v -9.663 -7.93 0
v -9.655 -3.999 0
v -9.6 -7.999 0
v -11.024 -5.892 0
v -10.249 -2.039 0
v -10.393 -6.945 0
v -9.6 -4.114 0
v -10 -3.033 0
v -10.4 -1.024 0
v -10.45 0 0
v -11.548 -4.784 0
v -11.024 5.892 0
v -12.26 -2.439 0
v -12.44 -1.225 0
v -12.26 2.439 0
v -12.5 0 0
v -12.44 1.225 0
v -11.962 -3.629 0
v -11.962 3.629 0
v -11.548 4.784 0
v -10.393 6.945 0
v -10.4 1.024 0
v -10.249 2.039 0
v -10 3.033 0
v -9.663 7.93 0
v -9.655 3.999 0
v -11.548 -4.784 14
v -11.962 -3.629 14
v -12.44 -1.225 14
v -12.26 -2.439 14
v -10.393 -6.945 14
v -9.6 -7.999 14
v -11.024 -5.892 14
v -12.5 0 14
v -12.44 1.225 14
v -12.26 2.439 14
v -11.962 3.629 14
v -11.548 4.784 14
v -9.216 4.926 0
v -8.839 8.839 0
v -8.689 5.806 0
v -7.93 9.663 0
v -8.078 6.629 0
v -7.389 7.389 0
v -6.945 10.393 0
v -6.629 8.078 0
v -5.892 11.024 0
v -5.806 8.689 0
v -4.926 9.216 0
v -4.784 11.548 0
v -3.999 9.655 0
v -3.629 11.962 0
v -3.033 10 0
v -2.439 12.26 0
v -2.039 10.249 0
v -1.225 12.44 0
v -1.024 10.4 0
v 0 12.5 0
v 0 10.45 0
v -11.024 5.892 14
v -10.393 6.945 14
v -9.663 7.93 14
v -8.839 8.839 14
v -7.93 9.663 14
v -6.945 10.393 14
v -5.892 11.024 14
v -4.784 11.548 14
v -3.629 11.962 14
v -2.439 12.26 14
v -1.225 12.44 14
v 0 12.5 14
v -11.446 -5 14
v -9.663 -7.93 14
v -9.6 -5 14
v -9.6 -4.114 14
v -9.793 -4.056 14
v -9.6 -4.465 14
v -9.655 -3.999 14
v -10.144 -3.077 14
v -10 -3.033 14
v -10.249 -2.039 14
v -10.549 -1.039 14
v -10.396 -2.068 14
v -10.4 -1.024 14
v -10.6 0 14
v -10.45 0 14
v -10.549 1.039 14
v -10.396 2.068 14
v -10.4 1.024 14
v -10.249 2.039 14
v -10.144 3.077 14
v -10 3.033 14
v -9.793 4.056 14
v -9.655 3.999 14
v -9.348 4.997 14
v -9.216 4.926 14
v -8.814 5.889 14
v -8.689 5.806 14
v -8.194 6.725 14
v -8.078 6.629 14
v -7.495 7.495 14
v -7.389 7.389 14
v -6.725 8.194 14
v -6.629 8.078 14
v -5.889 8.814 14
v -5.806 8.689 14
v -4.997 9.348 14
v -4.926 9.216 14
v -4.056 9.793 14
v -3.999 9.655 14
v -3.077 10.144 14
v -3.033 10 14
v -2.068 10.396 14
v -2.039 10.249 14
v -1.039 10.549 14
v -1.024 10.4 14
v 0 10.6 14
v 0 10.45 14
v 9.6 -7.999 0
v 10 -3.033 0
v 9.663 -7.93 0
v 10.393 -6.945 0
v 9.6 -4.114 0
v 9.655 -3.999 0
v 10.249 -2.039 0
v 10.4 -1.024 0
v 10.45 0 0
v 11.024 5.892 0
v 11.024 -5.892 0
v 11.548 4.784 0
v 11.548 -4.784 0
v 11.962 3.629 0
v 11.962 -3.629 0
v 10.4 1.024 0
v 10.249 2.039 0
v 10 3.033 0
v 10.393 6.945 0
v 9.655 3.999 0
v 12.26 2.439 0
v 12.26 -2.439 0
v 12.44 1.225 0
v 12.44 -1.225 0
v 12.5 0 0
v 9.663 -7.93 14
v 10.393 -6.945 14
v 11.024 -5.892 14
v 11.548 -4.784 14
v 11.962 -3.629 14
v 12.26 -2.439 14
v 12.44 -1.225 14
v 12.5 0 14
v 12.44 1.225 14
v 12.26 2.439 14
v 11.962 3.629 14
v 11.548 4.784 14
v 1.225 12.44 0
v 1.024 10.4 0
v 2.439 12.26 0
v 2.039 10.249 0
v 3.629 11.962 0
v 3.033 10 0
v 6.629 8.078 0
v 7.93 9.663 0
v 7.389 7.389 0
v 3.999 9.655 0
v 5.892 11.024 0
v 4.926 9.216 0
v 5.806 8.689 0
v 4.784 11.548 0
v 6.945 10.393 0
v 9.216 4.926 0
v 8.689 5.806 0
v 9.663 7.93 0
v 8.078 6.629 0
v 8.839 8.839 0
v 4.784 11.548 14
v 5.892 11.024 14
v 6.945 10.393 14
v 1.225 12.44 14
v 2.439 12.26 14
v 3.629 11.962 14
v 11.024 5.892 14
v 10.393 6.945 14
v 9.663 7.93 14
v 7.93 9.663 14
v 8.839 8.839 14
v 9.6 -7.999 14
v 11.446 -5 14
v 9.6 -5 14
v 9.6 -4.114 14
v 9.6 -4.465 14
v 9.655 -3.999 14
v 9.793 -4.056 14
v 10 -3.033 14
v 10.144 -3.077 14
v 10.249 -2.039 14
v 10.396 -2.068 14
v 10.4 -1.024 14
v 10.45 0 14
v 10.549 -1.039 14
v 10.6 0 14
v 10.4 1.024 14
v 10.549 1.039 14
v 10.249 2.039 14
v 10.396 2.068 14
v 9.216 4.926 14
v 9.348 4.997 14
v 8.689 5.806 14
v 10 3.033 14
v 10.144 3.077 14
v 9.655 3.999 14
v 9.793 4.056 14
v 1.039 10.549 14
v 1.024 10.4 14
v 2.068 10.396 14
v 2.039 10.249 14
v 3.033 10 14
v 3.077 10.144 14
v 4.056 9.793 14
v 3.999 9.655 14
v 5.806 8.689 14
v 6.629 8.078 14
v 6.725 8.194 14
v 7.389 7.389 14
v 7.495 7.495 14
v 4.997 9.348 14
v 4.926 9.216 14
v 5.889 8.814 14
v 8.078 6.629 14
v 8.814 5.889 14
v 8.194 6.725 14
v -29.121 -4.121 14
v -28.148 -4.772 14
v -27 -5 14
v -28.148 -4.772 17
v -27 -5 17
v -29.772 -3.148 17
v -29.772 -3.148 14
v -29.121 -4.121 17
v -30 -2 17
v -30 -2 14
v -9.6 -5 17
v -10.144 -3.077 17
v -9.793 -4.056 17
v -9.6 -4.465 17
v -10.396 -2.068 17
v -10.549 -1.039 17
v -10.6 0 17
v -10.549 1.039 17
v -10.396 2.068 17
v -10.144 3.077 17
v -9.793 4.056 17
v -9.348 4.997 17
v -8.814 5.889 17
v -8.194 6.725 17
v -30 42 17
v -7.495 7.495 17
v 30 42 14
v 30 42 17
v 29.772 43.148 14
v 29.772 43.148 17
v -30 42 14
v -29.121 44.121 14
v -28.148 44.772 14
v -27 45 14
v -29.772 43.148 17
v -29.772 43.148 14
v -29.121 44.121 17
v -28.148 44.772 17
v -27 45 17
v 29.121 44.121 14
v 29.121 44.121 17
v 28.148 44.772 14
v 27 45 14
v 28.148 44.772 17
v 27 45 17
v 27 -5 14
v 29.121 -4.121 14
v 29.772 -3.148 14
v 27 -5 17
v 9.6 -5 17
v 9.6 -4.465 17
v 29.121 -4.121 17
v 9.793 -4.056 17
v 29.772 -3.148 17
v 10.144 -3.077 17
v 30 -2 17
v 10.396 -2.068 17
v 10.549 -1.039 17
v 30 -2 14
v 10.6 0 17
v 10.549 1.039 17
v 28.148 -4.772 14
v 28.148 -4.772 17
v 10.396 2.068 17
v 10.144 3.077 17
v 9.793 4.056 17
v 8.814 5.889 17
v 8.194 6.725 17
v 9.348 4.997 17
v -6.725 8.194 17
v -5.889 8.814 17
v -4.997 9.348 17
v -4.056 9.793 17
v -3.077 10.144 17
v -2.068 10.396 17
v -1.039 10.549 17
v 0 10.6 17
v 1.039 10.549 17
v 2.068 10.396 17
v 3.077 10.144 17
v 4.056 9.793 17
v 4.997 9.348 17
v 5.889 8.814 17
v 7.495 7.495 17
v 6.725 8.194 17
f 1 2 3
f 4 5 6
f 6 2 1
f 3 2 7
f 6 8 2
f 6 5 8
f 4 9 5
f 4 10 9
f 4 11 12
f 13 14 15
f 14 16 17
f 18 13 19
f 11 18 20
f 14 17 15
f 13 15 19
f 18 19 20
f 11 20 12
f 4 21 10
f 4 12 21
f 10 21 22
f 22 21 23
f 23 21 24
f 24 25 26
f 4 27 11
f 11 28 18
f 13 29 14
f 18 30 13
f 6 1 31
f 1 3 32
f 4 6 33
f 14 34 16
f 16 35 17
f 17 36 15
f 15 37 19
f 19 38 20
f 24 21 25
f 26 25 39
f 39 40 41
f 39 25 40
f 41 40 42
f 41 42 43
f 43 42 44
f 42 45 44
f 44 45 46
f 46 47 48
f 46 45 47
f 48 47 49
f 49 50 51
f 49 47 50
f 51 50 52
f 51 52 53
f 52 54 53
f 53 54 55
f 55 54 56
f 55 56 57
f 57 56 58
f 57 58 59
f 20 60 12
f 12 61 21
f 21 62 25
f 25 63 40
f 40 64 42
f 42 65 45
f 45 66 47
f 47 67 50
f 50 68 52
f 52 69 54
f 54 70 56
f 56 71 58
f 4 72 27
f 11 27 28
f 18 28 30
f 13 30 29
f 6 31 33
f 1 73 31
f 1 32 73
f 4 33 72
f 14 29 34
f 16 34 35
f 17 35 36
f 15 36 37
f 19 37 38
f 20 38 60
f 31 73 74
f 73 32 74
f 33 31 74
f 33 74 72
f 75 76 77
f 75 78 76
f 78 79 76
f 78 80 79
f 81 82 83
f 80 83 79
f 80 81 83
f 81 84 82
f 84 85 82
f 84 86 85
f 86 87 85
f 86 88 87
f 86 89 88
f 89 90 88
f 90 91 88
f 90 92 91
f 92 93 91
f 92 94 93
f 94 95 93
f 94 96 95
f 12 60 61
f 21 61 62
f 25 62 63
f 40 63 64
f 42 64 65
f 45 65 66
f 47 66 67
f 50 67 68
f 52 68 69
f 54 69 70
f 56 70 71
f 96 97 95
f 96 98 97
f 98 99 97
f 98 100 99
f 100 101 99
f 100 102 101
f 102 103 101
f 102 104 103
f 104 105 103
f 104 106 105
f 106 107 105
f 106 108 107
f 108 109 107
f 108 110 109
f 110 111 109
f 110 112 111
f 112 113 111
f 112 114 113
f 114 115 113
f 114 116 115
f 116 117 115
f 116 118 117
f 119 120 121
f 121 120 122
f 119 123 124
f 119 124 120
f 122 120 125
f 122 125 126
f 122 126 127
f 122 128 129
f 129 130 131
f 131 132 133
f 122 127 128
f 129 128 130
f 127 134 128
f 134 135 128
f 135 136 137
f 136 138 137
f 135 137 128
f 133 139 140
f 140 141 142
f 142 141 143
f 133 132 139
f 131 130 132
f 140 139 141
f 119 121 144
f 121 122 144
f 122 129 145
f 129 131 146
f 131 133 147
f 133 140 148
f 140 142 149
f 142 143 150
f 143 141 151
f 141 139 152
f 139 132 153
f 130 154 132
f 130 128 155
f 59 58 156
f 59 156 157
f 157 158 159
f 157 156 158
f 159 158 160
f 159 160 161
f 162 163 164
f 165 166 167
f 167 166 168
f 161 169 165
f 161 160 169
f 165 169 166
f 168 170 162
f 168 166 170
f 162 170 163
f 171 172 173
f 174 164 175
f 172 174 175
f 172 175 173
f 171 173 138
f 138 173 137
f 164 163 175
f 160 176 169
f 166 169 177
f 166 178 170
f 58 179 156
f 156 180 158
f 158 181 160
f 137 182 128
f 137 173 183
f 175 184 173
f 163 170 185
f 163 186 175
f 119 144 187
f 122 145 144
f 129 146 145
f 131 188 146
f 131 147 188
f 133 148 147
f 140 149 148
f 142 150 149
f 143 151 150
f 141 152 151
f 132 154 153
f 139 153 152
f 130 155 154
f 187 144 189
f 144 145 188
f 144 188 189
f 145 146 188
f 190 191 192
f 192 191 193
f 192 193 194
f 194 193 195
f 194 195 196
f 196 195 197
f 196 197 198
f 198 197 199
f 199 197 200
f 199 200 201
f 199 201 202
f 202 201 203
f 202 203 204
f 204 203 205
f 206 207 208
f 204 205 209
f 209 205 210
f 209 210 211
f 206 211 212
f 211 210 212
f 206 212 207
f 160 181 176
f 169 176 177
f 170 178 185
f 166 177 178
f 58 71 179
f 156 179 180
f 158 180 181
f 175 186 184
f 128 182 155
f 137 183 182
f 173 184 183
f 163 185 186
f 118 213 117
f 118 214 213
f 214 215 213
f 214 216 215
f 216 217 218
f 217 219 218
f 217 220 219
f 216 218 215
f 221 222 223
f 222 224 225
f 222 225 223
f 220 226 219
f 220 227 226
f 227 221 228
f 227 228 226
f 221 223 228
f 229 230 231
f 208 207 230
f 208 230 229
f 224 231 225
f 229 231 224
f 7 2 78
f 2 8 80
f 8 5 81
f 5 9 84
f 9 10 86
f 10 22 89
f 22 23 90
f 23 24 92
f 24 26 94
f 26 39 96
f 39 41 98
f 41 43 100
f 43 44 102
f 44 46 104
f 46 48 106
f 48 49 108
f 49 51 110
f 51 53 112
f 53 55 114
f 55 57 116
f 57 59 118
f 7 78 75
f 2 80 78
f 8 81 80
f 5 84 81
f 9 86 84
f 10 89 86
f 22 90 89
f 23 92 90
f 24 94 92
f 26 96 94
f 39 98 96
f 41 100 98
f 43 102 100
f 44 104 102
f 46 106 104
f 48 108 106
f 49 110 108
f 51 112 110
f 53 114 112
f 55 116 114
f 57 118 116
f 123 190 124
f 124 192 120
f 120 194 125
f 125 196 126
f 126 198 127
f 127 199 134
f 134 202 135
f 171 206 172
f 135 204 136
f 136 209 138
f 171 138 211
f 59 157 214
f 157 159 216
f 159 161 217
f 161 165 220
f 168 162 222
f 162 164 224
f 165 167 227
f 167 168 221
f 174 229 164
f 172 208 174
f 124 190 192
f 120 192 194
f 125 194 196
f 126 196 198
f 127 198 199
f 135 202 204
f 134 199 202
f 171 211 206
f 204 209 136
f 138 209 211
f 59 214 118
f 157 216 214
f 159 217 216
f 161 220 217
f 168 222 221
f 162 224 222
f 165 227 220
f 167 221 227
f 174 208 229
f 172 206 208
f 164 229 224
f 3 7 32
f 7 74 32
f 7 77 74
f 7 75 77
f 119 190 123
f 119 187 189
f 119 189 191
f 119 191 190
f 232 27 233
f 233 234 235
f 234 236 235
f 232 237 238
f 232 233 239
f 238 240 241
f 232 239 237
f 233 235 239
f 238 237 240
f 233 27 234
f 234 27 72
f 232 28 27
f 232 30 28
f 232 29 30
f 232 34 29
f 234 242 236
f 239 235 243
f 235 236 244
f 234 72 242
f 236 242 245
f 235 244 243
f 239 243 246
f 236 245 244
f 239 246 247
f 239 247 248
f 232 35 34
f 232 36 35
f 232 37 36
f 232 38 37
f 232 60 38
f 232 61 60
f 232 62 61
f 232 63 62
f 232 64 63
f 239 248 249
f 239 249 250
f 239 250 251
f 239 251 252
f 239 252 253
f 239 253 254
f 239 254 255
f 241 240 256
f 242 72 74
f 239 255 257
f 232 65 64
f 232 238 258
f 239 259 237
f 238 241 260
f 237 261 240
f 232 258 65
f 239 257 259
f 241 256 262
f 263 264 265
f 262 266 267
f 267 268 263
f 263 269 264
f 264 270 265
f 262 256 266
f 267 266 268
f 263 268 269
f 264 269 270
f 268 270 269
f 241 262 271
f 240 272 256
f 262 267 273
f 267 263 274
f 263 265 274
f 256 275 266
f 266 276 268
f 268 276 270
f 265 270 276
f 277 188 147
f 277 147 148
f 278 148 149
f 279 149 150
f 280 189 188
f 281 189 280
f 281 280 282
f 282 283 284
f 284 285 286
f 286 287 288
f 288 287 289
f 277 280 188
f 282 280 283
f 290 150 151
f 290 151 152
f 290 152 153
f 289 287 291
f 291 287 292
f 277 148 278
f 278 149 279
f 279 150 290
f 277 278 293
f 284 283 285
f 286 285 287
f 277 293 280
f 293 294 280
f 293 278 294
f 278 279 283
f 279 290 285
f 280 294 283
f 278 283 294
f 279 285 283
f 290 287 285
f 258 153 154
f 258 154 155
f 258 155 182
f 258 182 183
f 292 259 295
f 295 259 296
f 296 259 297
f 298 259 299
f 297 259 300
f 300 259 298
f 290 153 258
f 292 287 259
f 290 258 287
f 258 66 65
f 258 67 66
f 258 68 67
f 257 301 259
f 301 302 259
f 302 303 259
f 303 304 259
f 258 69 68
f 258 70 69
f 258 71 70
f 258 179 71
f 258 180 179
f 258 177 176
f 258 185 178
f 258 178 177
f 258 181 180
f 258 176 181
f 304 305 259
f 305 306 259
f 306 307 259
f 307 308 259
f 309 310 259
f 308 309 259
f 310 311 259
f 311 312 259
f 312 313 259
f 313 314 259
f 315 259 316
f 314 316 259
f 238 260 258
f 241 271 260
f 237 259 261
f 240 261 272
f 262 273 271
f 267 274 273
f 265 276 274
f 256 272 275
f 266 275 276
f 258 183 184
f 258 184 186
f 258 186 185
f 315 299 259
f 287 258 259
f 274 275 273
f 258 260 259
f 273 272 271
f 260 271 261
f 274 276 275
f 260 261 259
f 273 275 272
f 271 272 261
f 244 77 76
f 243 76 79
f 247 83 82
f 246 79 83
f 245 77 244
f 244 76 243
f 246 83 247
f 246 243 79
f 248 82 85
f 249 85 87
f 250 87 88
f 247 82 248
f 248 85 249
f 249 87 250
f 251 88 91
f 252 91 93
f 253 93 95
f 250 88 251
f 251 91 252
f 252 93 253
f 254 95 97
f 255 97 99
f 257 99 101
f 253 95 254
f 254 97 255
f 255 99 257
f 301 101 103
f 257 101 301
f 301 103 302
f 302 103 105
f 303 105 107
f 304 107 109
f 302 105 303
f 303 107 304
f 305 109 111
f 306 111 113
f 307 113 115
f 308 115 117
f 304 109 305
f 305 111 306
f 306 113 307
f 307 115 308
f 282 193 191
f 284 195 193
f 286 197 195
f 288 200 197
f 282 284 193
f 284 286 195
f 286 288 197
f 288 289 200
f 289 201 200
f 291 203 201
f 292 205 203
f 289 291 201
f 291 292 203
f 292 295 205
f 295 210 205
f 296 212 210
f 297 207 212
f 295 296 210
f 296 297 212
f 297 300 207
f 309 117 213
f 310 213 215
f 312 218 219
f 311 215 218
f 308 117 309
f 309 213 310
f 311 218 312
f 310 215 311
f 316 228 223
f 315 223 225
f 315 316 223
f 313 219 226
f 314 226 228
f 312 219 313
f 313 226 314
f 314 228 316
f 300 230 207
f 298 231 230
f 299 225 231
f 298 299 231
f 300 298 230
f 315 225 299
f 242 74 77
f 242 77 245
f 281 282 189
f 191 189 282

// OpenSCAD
// H19_zero_gauge  (qty 1; frame: local; any (tool))
// GENERATED by gen_halo_stl.py from halo_parts.py. Change numbers in halo_params.scad.
// Every dimension below is an expression of the names in halo_params.scad.
include <../halo_params.scad>

union() {
    difference() {
        difference() {
            cylinder(h = 14, r = AIR_OD / 2 + 2.2, center = false, $fn = 64);
            translate([0, 0, -1]) {
                cylinder(h = 16, r = AIR_OD / 2 + 0.15, center = false, $fn = 64);
            }
            translate([-9.6, -20, -1]) {
                cube([19.2, 16, 16], center = false);
            }
        }
        translate([-9.6, -20, -1]) {
            cube([19.2, 16, 16], center = false);
        }
    }
    difference() {
        translate([0, 0, 14]) {
            linear_extrude(height = 3, center = false) polygon([[27, -5], [28.14805, -4.771639], [29.12132, -4.12132], [29.771639, -3.14805], [30, -2], [30, 42], [29.771639, 43.14805], [29.12132, 44.12132], [28.14805, 44.771639], [27, 45], [-27, 45], [-28.14805, 44.771639], [-29.12132, 44.12132], [-29.771639, 43.14805], [-30, 42], [-30, -2], [-29.771639, -3.14805], [-29.12132, -4.12132], [-28.14805, -4.771639], [-27, -5]]);
        }
        translate([0, 0, 13]) {
            cylinder(h = 5, r = AIR_OD / 2 + 0.3, center = false, $fn = 64);
        }
        translate([-9.6, -20, 13]) {
            cube([19.2, 20, 5], center = false);
        }
    }
}
